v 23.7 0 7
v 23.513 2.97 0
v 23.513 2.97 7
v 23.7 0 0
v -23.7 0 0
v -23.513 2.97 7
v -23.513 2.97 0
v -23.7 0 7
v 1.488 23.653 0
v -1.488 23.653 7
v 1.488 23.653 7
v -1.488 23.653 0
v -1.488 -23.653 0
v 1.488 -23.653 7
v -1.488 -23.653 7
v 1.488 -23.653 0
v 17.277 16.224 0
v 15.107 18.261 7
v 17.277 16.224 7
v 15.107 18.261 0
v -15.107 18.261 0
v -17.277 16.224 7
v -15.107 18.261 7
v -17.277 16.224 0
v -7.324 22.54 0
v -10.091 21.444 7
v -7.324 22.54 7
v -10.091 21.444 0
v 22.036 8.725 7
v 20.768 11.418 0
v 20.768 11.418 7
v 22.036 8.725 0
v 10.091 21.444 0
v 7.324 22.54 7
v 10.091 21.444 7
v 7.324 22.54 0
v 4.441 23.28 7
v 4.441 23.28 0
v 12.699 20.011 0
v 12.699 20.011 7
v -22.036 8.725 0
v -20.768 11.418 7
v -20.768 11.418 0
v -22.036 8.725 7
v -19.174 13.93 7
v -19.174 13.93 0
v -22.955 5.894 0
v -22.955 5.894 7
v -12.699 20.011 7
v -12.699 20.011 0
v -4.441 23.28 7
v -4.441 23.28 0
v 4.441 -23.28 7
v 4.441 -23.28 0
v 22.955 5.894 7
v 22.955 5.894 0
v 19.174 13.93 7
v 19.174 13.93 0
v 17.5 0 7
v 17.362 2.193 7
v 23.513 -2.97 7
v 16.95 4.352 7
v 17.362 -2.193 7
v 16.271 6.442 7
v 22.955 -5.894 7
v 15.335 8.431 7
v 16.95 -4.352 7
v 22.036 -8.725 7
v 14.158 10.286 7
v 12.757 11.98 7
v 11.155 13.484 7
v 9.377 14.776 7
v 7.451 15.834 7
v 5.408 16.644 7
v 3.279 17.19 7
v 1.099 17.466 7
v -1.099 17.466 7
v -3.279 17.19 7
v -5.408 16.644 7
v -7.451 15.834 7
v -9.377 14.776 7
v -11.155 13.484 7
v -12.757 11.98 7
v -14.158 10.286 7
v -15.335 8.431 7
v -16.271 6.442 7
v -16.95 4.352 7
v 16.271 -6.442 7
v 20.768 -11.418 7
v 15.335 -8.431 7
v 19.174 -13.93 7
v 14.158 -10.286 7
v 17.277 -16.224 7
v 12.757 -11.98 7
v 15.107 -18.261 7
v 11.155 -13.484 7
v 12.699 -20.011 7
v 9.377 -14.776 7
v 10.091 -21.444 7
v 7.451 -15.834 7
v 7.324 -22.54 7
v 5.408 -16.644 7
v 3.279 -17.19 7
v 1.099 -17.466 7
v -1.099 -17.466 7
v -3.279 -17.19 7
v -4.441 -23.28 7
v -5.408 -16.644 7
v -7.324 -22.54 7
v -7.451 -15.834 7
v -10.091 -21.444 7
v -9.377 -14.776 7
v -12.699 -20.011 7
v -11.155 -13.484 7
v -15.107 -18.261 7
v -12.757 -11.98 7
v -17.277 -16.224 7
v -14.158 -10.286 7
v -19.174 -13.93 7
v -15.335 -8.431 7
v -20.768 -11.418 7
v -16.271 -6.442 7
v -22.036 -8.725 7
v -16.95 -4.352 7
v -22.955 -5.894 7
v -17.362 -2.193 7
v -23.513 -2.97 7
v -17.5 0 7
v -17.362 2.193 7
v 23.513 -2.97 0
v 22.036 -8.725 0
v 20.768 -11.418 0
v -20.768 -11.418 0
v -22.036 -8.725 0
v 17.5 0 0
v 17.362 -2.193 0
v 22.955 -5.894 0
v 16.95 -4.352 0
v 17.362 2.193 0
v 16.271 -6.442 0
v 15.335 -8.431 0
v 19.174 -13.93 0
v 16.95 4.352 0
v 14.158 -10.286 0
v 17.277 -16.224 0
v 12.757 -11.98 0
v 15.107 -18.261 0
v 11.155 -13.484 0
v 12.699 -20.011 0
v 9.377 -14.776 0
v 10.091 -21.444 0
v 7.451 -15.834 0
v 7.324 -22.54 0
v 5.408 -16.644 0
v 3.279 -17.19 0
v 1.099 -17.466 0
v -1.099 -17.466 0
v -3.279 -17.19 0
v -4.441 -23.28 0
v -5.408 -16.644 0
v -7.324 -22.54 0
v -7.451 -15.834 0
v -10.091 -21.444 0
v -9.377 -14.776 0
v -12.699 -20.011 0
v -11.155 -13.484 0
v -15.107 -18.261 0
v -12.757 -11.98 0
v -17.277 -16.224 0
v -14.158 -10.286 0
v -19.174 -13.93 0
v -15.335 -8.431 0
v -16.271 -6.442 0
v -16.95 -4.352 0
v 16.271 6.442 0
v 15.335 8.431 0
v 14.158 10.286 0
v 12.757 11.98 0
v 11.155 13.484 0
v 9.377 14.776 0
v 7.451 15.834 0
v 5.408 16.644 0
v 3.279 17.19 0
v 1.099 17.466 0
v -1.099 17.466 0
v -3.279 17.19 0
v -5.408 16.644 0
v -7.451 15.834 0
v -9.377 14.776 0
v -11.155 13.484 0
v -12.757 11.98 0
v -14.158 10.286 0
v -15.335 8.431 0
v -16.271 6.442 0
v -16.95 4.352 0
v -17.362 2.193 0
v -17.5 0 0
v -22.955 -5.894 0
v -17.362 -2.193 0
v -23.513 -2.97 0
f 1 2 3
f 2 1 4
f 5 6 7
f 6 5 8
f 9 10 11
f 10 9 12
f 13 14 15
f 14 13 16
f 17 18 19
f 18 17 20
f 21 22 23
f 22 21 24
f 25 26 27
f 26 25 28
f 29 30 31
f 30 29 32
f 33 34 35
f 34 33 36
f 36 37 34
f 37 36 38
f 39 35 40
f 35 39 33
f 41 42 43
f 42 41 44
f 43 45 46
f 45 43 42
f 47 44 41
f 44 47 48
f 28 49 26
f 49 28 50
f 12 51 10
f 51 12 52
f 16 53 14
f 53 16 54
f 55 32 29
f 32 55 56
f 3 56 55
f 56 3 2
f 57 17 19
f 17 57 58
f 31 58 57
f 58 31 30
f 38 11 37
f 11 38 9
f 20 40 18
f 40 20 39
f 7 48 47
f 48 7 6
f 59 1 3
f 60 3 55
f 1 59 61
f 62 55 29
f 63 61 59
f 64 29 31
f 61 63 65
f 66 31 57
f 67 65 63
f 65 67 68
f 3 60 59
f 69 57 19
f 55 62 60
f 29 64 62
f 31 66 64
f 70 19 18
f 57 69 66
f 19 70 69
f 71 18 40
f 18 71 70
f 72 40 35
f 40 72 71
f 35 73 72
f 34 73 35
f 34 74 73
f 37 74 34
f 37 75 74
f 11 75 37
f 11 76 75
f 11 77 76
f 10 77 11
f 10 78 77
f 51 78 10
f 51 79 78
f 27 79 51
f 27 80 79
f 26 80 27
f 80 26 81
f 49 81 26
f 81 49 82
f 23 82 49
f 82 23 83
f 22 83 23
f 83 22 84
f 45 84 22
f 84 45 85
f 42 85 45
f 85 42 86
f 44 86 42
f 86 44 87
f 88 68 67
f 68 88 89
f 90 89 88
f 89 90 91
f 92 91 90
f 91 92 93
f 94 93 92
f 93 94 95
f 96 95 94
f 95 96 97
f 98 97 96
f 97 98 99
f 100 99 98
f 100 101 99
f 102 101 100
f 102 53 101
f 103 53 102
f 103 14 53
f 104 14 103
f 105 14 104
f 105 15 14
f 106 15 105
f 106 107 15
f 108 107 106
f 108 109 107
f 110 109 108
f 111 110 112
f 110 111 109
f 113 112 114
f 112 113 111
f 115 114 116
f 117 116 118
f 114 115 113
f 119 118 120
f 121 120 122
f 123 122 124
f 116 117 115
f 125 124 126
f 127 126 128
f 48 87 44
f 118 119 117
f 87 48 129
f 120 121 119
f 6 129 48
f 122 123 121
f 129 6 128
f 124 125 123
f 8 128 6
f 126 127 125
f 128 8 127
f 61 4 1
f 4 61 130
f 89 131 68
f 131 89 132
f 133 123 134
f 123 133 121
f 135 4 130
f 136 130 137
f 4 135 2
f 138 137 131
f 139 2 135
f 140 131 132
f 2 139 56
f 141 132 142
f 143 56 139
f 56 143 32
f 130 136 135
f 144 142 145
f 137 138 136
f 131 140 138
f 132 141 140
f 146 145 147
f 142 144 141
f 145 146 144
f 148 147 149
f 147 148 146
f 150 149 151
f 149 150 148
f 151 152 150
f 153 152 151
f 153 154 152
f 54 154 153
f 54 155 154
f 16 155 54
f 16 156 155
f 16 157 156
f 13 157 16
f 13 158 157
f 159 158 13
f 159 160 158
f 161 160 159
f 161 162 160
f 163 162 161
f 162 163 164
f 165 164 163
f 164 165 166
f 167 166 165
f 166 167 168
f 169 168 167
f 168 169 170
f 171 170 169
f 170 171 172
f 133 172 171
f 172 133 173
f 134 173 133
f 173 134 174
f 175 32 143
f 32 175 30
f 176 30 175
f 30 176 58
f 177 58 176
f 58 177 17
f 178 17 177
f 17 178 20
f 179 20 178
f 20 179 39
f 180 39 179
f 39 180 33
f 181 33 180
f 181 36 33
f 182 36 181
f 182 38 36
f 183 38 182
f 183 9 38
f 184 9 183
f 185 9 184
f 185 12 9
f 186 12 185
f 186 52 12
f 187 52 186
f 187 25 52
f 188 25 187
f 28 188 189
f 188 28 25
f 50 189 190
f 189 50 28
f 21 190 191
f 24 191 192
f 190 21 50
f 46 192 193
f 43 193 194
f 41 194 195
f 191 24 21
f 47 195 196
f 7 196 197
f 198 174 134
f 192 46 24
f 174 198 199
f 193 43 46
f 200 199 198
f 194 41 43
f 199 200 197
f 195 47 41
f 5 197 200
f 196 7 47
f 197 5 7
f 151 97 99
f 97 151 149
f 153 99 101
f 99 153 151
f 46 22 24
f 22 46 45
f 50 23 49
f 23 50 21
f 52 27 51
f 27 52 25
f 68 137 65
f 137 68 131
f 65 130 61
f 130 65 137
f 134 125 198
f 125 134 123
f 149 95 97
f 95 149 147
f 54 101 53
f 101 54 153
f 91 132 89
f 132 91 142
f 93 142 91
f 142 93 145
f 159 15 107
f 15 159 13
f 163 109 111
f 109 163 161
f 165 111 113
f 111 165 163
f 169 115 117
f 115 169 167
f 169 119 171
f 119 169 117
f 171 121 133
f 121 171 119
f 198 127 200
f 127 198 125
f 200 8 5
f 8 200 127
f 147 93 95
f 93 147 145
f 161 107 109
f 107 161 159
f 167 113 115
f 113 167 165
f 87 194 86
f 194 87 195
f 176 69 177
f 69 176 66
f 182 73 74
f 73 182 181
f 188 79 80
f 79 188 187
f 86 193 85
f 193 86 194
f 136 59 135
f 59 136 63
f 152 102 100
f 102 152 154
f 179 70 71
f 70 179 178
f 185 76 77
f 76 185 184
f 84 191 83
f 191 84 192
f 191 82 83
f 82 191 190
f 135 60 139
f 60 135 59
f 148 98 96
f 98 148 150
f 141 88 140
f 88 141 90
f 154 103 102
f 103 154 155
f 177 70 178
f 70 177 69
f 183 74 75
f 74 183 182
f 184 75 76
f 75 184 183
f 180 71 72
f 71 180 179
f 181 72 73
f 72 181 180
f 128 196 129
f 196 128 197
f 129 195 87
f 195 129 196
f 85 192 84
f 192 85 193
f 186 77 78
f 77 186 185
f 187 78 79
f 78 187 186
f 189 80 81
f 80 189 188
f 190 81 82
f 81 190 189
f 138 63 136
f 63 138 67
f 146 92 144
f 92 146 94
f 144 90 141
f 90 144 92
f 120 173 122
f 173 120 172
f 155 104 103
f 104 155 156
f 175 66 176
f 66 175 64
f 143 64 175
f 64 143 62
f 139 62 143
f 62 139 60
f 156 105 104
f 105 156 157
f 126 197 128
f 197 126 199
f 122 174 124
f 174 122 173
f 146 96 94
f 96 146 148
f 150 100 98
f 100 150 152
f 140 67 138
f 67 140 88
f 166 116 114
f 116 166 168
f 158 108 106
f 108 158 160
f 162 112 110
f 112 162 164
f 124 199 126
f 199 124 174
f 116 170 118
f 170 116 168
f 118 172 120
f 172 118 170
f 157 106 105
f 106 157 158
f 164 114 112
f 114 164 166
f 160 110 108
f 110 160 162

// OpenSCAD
$fn = 50;


difference() {
	union() {
		translate(v = [0, 0, 0]) {
			rotate(a = [0, 0, 0]) {
				cylinder(h = 7, r = 23.7000000000);
			}
		}
	}
	union() {
		translate(v = [0, 0, 0]) {
			rotate(a = [0, 0, 0]) {
				cylinder(h = 7, r = 17.5000000000);
			}
		}
	}
}
